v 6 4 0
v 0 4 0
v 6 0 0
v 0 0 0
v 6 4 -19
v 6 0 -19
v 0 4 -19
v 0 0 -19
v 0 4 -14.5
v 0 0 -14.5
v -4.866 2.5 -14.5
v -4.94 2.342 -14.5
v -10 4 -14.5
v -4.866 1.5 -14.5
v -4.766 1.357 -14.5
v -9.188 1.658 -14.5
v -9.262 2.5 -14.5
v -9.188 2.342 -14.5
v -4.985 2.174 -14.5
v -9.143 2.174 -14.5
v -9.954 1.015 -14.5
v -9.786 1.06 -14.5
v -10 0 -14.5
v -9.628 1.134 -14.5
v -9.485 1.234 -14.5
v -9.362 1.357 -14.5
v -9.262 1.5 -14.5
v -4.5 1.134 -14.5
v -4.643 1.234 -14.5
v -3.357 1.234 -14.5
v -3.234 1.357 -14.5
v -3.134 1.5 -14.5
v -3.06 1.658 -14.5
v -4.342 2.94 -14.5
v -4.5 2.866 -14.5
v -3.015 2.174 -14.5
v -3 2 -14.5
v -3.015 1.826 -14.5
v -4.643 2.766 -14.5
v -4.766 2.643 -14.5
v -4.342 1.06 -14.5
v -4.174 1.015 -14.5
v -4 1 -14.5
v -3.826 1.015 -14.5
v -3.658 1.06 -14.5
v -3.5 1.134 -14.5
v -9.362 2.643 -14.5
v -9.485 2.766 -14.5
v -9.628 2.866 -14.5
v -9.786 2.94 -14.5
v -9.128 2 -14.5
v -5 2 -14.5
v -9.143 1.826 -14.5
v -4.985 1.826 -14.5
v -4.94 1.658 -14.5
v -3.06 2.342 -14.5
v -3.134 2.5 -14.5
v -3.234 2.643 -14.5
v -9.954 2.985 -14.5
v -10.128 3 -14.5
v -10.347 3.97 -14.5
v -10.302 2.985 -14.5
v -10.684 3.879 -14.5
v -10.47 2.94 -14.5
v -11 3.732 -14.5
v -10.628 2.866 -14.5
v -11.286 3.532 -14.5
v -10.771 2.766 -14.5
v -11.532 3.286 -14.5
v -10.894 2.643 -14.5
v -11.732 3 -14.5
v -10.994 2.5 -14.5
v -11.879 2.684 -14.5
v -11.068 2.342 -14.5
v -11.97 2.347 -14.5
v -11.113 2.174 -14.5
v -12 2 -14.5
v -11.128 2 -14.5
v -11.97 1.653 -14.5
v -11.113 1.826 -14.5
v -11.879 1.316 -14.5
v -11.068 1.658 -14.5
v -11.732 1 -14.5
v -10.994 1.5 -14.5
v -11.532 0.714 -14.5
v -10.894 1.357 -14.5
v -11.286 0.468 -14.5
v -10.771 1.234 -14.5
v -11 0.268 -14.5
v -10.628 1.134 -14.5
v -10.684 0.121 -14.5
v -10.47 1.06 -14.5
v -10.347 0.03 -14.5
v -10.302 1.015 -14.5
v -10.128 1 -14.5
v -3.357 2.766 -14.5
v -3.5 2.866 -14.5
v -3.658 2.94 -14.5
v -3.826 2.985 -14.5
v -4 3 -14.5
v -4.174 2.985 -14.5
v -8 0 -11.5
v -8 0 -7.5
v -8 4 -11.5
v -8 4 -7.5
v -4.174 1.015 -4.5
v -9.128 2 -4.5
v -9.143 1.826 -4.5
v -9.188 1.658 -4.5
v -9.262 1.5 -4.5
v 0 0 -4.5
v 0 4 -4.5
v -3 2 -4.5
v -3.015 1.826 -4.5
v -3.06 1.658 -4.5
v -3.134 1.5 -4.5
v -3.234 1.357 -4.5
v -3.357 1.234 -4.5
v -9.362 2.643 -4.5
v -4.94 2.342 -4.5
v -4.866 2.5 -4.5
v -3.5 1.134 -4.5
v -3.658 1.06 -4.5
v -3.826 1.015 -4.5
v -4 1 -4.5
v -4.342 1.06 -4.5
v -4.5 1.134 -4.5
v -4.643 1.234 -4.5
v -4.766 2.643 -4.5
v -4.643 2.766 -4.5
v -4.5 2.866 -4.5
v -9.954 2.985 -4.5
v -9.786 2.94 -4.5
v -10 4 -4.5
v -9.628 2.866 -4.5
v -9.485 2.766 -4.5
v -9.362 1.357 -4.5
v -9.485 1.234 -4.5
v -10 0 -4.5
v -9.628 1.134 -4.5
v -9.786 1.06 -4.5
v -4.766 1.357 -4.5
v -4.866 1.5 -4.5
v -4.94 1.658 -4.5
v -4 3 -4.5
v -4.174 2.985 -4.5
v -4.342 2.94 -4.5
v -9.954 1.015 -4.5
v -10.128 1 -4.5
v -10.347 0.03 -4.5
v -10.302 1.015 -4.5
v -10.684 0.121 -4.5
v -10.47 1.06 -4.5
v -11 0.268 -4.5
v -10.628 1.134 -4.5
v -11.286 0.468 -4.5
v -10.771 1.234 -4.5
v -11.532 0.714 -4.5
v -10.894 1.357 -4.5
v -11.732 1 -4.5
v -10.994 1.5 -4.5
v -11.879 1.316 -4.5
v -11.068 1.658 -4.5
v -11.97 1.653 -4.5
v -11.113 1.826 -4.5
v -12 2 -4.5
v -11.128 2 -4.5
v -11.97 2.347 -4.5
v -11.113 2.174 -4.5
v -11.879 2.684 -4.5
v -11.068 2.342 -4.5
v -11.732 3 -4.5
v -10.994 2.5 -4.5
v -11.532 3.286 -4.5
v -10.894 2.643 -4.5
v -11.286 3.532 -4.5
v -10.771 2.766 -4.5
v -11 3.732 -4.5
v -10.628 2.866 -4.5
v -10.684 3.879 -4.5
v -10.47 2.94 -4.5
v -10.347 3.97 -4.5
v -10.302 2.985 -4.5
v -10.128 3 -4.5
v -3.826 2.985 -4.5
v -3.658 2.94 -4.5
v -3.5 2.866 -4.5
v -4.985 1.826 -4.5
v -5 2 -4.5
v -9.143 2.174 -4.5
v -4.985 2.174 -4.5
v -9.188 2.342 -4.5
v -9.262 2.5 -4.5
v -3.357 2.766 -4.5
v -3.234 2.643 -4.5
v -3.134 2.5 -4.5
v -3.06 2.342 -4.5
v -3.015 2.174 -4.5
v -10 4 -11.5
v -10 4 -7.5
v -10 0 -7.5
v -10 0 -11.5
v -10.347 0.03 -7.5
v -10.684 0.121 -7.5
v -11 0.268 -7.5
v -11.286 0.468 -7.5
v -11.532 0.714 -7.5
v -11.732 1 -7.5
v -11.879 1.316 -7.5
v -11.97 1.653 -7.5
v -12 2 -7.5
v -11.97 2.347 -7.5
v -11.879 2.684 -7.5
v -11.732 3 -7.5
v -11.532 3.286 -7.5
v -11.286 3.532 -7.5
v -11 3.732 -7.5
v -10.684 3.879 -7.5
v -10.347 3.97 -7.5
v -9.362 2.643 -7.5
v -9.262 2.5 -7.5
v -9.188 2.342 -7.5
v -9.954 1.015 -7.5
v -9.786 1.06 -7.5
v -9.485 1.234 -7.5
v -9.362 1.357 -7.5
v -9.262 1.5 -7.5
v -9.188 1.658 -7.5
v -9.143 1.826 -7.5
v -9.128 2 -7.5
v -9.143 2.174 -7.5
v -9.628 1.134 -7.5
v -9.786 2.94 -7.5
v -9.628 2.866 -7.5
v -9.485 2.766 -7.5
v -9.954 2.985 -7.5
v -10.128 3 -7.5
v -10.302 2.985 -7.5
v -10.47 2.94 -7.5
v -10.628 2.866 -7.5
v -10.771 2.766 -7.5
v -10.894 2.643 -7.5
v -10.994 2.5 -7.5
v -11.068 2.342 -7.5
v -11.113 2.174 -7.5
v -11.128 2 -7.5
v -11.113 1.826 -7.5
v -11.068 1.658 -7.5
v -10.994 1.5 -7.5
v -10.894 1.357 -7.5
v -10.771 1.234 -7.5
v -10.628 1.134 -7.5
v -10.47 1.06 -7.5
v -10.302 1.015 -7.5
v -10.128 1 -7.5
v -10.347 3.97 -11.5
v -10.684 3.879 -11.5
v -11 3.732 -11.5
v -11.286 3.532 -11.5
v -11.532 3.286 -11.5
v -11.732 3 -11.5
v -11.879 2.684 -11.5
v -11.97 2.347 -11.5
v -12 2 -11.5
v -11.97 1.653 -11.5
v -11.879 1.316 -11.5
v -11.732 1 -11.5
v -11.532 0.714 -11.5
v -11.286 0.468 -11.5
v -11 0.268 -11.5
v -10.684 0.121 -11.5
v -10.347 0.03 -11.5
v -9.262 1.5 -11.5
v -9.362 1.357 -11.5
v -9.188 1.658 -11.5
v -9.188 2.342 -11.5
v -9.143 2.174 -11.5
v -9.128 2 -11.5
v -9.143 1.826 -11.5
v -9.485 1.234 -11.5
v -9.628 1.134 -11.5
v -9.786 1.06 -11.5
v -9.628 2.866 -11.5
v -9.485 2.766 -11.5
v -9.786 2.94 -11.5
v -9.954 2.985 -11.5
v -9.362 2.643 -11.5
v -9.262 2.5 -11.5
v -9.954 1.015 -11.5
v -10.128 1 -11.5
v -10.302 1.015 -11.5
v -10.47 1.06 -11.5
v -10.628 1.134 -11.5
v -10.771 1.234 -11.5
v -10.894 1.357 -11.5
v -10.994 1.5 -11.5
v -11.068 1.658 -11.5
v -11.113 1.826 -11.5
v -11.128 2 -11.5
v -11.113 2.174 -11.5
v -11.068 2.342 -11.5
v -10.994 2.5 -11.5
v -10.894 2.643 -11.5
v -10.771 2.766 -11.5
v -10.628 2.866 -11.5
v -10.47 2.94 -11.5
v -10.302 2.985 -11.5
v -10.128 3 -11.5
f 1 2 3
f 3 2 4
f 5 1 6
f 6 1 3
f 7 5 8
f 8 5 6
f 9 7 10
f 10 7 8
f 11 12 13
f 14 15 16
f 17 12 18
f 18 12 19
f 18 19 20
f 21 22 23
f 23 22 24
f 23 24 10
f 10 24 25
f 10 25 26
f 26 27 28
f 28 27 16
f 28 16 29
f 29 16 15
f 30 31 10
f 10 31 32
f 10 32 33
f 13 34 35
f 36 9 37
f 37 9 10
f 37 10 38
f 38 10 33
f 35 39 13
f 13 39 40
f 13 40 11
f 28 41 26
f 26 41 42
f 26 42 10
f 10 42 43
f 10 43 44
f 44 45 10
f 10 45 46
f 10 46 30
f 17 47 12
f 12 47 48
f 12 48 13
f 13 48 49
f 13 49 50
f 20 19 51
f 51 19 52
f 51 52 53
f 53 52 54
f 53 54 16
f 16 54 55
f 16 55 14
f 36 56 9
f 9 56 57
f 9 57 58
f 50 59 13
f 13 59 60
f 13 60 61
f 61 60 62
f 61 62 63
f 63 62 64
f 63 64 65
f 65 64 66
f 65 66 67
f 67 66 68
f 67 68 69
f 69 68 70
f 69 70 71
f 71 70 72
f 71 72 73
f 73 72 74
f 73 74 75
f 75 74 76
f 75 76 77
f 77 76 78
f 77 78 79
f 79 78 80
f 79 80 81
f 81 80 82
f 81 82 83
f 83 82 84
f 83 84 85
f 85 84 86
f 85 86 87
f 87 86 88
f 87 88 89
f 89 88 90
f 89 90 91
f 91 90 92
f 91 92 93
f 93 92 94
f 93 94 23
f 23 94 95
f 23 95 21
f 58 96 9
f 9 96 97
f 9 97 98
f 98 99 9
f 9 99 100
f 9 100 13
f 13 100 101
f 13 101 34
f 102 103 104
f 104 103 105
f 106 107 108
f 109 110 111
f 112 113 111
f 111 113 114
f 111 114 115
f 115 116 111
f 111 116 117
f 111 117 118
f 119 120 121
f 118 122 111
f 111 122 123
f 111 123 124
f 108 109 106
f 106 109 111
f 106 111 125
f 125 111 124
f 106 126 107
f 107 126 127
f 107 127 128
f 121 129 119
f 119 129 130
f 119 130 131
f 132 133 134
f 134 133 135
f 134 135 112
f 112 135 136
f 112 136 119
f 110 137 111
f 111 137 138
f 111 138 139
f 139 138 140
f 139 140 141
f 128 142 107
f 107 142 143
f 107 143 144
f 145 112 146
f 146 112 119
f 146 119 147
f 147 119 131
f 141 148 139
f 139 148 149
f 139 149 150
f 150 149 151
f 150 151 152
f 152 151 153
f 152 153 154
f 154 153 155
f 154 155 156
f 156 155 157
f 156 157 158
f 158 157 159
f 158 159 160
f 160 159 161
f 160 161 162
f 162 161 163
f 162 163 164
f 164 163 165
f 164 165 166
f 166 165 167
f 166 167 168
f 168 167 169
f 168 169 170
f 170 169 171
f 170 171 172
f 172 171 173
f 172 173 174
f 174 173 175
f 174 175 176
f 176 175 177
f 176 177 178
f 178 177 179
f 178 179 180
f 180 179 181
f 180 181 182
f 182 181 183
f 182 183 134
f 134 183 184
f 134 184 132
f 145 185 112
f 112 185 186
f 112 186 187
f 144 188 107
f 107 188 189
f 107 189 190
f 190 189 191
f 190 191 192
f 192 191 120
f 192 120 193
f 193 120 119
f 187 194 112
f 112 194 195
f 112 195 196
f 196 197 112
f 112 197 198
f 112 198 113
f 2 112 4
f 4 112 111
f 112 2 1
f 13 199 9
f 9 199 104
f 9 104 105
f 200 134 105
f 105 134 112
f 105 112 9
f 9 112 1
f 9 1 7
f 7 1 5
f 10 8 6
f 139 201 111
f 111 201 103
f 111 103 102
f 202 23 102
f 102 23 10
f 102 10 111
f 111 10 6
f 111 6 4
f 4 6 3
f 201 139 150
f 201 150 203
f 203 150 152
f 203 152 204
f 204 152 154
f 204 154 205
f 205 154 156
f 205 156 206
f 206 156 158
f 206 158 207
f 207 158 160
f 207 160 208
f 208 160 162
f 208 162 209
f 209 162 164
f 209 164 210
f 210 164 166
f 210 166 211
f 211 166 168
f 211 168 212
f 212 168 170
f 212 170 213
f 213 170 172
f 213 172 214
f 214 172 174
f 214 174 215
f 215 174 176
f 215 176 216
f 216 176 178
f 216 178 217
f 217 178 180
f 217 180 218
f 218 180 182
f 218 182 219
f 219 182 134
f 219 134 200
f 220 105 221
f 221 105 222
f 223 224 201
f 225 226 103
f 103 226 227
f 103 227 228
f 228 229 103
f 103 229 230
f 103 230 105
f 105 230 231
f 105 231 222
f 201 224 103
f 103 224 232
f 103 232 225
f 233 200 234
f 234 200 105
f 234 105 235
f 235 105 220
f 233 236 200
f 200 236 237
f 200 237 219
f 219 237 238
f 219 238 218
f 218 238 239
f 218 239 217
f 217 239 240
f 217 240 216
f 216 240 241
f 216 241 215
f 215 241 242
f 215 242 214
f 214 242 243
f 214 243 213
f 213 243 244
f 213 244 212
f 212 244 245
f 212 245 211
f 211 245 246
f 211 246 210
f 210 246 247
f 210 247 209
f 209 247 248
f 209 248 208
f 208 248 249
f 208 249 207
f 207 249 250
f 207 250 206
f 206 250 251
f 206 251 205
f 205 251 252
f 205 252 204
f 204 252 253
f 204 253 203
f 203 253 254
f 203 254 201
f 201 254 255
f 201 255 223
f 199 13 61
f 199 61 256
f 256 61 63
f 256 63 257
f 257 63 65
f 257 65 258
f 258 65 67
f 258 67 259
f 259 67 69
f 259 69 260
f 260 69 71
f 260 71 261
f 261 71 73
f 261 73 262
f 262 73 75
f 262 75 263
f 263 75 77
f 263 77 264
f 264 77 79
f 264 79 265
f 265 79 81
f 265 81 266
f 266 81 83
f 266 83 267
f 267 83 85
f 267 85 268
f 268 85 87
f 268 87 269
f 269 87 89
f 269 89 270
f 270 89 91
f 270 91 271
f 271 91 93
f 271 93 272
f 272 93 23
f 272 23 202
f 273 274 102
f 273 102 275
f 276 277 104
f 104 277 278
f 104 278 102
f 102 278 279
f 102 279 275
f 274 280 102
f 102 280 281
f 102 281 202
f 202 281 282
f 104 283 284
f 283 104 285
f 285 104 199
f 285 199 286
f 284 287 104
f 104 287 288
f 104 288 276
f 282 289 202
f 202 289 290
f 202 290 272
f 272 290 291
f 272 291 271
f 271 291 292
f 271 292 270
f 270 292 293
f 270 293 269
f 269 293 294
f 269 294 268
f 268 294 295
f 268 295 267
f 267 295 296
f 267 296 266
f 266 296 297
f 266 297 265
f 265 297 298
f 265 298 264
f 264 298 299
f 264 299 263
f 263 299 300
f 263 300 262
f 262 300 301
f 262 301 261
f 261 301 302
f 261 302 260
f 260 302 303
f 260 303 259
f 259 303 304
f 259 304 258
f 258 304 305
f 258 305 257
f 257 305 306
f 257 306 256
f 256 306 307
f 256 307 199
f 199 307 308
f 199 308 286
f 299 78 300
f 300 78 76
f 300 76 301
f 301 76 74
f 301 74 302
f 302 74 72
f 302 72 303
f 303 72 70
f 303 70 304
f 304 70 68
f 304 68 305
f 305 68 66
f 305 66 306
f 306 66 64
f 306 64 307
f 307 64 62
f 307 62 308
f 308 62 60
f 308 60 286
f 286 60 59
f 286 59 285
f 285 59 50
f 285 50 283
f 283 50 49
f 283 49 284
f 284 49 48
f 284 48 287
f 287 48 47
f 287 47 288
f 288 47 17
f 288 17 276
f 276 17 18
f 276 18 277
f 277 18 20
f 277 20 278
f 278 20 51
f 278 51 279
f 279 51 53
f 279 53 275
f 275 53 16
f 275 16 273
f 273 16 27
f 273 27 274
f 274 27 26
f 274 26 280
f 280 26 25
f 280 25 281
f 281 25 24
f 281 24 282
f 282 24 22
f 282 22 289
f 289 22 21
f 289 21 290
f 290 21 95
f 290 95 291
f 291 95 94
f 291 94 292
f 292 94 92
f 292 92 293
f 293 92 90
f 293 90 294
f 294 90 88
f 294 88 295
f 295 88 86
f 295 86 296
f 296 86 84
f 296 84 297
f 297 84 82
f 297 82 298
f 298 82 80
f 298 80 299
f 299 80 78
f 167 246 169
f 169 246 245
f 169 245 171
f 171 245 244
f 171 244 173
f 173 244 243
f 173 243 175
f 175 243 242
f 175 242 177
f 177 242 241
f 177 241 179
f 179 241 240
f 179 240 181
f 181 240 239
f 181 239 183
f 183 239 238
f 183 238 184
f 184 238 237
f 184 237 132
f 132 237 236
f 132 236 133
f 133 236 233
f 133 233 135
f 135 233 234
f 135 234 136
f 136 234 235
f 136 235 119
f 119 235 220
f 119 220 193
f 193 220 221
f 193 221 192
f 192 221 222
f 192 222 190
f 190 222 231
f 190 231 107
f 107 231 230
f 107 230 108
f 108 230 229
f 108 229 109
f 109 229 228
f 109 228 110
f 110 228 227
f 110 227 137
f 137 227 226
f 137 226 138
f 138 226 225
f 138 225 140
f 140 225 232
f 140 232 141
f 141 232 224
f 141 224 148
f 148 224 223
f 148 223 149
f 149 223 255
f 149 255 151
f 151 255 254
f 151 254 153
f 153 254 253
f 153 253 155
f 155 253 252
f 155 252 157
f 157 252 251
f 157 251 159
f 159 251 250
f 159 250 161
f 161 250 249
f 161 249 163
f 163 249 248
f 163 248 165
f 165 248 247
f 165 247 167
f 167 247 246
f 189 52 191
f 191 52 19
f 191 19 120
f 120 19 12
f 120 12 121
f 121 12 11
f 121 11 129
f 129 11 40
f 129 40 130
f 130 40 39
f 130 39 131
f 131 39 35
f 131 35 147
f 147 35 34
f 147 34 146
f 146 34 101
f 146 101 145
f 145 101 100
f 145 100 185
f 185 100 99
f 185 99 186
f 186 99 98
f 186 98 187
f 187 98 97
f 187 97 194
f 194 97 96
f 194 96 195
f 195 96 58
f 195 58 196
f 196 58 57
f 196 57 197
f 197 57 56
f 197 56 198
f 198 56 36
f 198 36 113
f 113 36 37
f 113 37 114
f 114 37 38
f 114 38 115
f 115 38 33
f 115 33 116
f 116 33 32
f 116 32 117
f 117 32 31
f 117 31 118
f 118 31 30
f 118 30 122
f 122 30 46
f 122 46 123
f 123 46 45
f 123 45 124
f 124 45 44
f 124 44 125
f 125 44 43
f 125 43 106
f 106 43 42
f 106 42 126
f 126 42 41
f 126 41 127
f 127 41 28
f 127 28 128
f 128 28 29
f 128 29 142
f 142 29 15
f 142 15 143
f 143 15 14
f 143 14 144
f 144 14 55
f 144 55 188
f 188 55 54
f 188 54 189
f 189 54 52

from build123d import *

# Parameters (mm, degrees)
SKETCH1_W           = 6
SKETCH1_H           = 19
SKETCH1_W_2         = 8
SKETCH1_H_2         = 10
BOSS_EXTRUDE1_DEPTH = 4
BOSS_EXTRUDE2_DEPTH = 3
BOSS_EXTRUDE3_START = -3
BOSS_EXTRUDE3_DEPTH = 3
SKETCH6_R           = 1
CUT_EXTRUDE1_DEPTH  = 14
SKETCH7_R           = 1
CUT_EXTRUDE2_DEPTH  = 14


with BuildPart() as part:
    # Sketch1 → Boss-Extrude1 (new body)
    with BuildSketch(Plane(origin=(0, 0, 0), x_dir=(1, 0, 0), z_dir=(0, 1, 0))):
        with Locations((3, 9.5)):
            Rectangle(SKETCH1_W, SKETCH1_H)
        with Locations((-4, 9.5)):
            Rectangle(SKETCH1_W_2, SKETCH1_H_2)
    extrude(amount=BOSS_EXTRUDE1_DEPTH)

    # Sketch2 → Boss-Extrude2 (add)
    with BuildSketch(Plane.XY.offset(-4.5)):
        with BuildLine():
            Line((-8, 0), (-10, 0))
            ThreePointArc((-10, 0), (-12, 2), (-10, 4))
            Line((-10, 4), (-8, 4))
            Line((-8, 4), (-8, 0))
        make_face()
    extrude(amount=-BOSS_EXTRUDE2_DEPTH)

    # Sketch5 → Boss-Extrude3 (add)
    with BuildSketch(Plane(origin=(0, 0, -14.5), x_dir=(-1, 0, 0), z_dir=(0, 0, -1)).offset(BOSS_EXTRUDE3_START)):
        with BuildLine():
            Line((8, 4), (10, 4))
            ThreePointArc((10, 4), (12, 2), (10, 0))
            Line((10, 0), (8, 0))
            Line((8, 0), (8, 4))
        make_face()
    extrude(amount=BOSS_EXTRUDE3_DEPTH)

    # Sketch6 → Cut-Extrude1 (cut)
    with BuildSketch(Plane(origin=(0, 0, -14.5), x_dir=(-1, 0, 0), z_dir=(0, 0, -1))):
        with Locations((10.127972383, 2)):
            Circle(SKETCH6_R)
    extrude(amount=-CUT_EXTRUDE1_DEPTH, mode=Mode.SUBTRACT)

    # Sketch7 → Cut-Extrude2 (cut)
    with BuildSketch(Plane(origin=(0, 0, -14.5), x_dir=(-1, 0, 0), z_dir=(0, 0, -1))):
        with Locations((4, 2)):
            Circle(SKETCH7_R)
    extrude(amount=-CUT_EXTRUDE2_DEPTH, mode=Mode.SUBTRACT)


solid = part.part
